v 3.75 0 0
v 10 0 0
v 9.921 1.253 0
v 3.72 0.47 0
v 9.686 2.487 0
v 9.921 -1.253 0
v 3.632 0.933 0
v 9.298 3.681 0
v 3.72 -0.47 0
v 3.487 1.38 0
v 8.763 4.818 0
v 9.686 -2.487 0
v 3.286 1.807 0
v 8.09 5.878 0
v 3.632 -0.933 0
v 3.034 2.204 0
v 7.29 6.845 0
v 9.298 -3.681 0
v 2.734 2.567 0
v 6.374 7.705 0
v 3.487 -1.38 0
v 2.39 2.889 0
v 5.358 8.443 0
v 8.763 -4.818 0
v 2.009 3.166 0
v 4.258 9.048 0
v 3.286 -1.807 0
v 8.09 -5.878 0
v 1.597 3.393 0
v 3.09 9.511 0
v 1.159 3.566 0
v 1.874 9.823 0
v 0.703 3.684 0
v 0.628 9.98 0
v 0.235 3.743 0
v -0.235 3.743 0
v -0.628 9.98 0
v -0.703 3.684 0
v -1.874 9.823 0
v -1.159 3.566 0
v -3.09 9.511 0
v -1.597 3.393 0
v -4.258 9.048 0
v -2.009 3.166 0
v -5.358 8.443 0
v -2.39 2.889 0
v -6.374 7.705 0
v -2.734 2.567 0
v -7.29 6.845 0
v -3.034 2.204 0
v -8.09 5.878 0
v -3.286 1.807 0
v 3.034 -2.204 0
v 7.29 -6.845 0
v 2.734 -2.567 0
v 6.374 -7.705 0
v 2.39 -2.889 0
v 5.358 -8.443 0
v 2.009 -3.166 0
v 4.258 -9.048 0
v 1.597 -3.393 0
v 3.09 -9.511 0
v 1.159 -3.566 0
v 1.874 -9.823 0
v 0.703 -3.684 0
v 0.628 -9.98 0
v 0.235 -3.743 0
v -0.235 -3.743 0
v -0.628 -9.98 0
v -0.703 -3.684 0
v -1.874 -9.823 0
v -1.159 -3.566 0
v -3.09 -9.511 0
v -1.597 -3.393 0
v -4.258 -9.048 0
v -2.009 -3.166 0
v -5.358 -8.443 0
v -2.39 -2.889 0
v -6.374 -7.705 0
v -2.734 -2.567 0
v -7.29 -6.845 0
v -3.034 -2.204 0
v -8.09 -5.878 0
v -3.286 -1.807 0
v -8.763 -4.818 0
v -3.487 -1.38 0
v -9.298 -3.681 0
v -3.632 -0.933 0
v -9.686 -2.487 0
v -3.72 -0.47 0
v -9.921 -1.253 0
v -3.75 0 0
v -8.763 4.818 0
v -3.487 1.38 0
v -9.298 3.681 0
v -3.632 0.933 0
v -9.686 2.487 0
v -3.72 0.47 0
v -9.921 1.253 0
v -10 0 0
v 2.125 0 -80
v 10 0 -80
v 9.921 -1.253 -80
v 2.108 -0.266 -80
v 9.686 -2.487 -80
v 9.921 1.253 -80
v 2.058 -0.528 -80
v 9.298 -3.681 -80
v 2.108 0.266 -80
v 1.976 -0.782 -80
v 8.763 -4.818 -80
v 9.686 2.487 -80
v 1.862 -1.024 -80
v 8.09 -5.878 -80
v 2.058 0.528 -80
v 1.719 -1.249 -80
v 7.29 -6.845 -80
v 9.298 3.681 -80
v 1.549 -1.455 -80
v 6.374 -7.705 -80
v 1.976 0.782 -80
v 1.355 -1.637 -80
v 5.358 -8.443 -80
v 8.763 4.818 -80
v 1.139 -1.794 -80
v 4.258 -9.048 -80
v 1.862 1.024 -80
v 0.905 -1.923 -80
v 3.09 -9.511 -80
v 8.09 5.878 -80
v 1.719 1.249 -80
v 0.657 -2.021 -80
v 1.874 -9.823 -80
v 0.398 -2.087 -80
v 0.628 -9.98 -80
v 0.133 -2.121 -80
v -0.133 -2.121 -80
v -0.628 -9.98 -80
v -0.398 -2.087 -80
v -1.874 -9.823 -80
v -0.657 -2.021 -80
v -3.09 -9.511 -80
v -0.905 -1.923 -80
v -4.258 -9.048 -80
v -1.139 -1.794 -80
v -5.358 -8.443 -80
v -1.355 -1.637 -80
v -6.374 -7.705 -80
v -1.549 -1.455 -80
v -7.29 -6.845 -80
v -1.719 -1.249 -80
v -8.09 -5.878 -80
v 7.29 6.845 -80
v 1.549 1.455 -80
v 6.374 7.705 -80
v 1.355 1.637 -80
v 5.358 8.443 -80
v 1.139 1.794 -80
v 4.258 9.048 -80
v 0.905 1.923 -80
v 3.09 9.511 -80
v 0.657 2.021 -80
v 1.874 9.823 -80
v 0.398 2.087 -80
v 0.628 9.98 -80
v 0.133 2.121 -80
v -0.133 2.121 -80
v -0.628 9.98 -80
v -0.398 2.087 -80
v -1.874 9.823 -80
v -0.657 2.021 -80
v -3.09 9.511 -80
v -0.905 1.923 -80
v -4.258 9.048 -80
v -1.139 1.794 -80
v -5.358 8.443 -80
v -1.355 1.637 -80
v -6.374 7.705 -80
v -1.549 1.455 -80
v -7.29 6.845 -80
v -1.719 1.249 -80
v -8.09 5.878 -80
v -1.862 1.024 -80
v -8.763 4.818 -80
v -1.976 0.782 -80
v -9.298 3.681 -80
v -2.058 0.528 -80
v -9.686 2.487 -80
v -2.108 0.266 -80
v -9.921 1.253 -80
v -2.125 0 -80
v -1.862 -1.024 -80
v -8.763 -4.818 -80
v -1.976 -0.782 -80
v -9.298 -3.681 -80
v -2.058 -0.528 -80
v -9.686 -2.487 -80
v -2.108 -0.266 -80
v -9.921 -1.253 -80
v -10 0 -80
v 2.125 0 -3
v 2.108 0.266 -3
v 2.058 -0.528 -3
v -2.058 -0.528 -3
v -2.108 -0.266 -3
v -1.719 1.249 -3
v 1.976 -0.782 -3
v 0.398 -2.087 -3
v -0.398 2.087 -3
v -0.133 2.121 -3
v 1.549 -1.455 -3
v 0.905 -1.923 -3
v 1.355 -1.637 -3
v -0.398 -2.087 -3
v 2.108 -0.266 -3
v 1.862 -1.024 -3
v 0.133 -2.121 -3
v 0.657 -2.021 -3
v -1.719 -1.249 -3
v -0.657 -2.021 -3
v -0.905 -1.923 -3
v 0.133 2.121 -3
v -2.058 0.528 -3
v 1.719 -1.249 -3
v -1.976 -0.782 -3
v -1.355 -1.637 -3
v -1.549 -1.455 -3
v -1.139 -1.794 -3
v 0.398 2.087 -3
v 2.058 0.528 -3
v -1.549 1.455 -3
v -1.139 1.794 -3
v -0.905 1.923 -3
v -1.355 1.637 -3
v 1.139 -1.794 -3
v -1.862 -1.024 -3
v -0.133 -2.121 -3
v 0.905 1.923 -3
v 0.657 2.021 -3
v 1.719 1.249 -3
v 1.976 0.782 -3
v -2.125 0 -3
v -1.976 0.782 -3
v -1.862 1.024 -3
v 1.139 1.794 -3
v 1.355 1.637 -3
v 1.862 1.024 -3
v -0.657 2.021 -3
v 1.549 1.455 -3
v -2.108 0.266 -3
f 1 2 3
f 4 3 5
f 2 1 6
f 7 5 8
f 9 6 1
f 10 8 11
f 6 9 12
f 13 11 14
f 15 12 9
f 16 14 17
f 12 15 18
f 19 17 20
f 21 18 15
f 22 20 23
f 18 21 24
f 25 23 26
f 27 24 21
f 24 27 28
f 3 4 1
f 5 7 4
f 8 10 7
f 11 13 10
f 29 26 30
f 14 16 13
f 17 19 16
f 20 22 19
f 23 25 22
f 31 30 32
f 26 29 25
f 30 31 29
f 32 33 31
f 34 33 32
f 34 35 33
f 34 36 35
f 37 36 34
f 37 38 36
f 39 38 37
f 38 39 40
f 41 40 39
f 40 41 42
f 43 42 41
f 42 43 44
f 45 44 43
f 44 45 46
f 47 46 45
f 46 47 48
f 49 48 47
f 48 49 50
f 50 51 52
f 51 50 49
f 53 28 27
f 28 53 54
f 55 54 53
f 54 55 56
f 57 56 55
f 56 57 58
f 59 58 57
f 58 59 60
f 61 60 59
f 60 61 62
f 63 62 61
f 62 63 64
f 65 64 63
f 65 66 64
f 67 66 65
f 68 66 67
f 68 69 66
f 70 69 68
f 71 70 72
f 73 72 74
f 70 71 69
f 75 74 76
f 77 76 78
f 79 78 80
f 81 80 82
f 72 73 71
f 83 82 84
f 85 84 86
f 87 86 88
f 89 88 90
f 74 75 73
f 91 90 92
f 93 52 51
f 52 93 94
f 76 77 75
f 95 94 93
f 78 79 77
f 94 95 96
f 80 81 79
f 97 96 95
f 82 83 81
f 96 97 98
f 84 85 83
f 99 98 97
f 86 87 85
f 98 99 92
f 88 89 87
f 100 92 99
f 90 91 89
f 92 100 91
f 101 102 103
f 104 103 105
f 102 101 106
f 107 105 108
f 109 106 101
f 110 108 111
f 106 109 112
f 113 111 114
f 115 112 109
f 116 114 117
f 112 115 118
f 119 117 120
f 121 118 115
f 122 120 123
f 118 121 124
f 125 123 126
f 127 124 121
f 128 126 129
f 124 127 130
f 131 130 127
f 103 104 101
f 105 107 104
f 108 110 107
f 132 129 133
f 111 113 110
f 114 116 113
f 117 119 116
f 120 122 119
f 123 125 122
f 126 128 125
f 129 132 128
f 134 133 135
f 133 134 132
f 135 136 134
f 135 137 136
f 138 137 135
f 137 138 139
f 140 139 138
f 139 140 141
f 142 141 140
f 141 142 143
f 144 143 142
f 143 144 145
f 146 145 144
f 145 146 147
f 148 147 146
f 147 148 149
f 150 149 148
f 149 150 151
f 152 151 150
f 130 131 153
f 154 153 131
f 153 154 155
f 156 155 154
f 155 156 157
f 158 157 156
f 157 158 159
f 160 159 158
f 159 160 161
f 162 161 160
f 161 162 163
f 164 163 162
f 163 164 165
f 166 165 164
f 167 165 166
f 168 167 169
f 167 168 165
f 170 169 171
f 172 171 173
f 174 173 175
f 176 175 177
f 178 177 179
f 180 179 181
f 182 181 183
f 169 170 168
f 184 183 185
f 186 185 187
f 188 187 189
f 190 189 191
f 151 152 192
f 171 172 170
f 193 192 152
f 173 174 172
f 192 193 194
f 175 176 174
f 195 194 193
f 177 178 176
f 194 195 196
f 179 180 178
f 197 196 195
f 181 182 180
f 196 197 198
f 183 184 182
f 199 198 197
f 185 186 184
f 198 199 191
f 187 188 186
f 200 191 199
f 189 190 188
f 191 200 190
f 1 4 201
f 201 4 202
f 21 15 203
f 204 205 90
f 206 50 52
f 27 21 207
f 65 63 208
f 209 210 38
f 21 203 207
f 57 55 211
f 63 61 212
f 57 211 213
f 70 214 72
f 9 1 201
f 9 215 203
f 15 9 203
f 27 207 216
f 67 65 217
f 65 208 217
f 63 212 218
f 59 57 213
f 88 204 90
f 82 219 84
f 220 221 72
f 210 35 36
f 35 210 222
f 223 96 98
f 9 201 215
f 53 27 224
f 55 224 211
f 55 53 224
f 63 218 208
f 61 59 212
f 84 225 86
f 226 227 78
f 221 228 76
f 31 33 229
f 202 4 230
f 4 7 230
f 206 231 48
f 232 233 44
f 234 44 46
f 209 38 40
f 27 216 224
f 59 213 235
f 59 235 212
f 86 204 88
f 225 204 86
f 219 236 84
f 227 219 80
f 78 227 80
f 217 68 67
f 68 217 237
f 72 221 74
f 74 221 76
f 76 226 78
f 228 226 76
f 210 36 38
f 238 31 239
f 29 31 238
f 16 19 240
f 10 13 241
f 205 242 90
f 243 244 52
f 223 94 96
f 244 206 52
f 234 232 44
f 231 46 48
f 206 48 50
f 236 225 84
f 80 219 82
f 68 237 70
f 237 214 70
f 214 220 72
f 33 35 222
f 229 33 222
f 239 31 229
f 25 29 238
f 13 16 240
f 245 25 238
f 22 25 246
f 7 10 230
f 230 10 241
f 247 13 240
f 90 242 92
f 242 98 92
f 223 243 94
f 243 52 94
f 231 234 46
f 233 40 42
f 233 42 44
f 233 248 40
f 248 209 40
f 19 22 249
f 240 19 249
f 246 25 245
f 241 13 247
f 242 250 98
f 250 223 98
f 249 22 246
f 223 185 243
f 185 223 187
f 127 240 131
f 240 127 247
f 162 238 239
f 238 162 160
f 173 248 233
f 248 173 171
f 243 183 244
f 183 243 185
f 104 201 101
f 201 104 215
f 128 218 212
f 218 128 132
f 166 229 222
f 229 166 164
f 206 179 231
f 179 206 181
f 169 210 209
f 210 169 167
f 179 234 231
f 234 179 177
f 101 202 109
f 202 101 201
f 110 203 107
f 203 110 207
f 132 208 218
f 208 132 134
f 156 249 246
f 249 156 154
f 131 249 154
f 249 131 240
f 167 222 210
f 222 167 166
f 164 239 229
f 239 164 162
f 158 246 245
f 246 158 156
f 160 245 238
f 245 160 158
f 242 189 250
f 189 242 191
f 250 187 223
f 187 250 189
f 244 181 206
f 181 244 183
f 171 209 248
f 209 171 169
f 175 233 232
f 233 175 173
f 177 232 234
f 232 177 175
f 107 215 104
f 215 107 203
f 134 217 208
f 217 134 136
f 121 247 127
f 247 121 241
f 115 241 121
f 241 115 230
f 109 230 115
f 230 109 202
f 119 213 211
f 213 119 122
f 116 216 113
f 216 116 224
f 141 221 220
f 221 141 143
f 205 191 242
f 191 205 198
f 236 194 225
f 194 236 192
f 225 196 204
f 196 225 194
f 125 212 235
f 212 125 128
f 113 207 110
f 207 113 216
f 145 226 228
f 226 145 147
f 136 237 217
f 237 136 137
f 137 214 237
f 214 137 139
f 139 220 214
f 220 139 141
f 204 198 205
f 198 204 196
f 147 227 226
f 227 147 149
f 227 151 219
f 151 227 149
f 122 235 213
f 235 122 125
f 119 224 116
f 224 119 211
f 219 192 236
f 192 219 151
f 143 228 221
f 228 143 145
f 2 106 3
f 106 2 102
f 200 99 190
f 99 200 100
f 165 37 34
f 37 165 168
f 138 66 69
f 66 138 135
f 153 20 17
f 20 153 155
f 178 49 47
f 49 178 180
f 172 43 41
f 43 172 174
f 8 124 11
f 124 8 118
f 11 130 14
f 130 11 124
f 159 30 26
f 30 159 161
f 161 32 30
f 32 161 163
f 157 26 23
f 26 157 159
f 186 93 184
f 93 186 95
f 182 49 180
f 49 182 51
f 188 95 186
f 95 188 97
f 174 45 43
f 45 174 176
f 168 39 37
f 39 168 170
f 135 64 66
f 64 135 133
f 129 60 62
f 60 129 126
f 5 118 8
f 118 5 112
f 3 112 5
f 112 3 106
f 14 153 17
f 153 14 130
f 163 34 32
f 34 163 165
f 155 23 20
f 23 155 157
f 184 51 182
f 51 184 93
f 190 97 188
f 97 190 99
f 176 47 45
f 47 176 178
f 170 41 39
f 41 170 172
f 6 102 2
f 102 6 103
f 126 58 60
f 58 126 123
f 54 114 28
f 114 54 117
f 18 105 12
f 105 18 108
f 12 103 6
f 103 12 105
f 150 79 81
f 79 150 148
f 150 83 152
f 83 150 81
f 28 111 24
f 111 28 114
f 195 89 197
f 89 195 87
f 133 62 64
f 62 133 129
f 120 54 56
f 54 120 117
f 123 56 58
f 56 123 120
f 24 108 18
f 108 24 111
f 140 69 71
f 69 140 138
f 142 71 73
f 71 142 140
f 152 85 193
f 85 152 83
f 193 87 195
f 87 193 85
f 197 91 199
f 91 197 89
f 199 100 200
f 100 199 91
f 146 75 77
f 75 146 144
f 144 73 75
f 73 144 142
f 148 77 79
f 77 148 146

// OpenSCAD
$fn = 50;


difference() {
	union() {
		translate(v = [0, 0, -80.0000000000]) {
			cylinder(h = 80, r = 10.0000000000);
		}
		cylinder(h = 0, r = 19.0000000000);
	}
	union() {
		translate(v = [0, 0, 0]) {
			rotate(a = [0, 0, 0]) {
				difference() {
					union() {
						#translate(v = [0, 0, -80.0000000000]) {
							cylinder(h = 80, r = 2.0000000000);
						}
						#translate(v = [0, 0, -3]) {
							cylinder(h = 3, r = 10.0000000000, r1 = 2.1250000000, r2 = 3.7500000000);
						}
						#translate(v = [0, 0, -80.0000000000]) {
							cylinder(h = 80, r = 2.1250000000);
						}
						#translate(v = [0, 0, -80.0000000000]) {
							cylinder(h = 80, r = 2.0000000000);
						}
					}
					union();
				}
			}
		}
	}
}
